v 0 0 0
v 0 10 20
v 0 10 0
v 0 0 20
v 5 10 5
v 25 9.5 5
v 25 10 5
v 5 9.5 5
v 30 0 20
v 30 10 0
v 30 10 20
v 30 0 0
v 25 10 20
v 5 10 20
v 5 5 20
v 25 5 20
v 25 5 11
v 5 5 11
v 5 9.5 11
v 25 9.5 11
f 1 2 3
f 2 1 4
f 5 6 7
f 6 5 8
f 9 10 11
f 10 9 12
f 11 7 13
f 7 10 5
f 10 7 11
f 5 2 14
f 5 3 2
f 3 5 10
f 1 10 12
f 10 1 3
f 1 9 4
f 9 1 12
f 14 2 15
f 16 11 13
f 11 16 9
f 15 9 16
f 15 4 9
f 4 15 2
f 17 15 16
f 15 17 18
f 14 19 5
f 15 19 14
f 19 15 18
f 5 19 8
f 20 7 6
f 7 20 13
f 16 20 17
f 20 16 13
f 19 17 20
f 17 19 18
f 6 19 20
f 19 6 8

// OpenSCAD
// Base of the couch
cube([30, 10, 5]);

// Couch backrest
translate([0, 0, 5]) 
    cube([30, 5, 15]);

// Left armrest
translate([0, 0, 5]) 
    cube([5, 10, 15]);

// Right armrest
translate([25, 0, 5]) 
    cube([5, 10, 15]);

// Left cushion
translate([5, 0.5, 5])
    cube([10, 9, 6]);

// Right cushion
translate([15, 0.5, 5])
    cube([10, 9, 6]);
